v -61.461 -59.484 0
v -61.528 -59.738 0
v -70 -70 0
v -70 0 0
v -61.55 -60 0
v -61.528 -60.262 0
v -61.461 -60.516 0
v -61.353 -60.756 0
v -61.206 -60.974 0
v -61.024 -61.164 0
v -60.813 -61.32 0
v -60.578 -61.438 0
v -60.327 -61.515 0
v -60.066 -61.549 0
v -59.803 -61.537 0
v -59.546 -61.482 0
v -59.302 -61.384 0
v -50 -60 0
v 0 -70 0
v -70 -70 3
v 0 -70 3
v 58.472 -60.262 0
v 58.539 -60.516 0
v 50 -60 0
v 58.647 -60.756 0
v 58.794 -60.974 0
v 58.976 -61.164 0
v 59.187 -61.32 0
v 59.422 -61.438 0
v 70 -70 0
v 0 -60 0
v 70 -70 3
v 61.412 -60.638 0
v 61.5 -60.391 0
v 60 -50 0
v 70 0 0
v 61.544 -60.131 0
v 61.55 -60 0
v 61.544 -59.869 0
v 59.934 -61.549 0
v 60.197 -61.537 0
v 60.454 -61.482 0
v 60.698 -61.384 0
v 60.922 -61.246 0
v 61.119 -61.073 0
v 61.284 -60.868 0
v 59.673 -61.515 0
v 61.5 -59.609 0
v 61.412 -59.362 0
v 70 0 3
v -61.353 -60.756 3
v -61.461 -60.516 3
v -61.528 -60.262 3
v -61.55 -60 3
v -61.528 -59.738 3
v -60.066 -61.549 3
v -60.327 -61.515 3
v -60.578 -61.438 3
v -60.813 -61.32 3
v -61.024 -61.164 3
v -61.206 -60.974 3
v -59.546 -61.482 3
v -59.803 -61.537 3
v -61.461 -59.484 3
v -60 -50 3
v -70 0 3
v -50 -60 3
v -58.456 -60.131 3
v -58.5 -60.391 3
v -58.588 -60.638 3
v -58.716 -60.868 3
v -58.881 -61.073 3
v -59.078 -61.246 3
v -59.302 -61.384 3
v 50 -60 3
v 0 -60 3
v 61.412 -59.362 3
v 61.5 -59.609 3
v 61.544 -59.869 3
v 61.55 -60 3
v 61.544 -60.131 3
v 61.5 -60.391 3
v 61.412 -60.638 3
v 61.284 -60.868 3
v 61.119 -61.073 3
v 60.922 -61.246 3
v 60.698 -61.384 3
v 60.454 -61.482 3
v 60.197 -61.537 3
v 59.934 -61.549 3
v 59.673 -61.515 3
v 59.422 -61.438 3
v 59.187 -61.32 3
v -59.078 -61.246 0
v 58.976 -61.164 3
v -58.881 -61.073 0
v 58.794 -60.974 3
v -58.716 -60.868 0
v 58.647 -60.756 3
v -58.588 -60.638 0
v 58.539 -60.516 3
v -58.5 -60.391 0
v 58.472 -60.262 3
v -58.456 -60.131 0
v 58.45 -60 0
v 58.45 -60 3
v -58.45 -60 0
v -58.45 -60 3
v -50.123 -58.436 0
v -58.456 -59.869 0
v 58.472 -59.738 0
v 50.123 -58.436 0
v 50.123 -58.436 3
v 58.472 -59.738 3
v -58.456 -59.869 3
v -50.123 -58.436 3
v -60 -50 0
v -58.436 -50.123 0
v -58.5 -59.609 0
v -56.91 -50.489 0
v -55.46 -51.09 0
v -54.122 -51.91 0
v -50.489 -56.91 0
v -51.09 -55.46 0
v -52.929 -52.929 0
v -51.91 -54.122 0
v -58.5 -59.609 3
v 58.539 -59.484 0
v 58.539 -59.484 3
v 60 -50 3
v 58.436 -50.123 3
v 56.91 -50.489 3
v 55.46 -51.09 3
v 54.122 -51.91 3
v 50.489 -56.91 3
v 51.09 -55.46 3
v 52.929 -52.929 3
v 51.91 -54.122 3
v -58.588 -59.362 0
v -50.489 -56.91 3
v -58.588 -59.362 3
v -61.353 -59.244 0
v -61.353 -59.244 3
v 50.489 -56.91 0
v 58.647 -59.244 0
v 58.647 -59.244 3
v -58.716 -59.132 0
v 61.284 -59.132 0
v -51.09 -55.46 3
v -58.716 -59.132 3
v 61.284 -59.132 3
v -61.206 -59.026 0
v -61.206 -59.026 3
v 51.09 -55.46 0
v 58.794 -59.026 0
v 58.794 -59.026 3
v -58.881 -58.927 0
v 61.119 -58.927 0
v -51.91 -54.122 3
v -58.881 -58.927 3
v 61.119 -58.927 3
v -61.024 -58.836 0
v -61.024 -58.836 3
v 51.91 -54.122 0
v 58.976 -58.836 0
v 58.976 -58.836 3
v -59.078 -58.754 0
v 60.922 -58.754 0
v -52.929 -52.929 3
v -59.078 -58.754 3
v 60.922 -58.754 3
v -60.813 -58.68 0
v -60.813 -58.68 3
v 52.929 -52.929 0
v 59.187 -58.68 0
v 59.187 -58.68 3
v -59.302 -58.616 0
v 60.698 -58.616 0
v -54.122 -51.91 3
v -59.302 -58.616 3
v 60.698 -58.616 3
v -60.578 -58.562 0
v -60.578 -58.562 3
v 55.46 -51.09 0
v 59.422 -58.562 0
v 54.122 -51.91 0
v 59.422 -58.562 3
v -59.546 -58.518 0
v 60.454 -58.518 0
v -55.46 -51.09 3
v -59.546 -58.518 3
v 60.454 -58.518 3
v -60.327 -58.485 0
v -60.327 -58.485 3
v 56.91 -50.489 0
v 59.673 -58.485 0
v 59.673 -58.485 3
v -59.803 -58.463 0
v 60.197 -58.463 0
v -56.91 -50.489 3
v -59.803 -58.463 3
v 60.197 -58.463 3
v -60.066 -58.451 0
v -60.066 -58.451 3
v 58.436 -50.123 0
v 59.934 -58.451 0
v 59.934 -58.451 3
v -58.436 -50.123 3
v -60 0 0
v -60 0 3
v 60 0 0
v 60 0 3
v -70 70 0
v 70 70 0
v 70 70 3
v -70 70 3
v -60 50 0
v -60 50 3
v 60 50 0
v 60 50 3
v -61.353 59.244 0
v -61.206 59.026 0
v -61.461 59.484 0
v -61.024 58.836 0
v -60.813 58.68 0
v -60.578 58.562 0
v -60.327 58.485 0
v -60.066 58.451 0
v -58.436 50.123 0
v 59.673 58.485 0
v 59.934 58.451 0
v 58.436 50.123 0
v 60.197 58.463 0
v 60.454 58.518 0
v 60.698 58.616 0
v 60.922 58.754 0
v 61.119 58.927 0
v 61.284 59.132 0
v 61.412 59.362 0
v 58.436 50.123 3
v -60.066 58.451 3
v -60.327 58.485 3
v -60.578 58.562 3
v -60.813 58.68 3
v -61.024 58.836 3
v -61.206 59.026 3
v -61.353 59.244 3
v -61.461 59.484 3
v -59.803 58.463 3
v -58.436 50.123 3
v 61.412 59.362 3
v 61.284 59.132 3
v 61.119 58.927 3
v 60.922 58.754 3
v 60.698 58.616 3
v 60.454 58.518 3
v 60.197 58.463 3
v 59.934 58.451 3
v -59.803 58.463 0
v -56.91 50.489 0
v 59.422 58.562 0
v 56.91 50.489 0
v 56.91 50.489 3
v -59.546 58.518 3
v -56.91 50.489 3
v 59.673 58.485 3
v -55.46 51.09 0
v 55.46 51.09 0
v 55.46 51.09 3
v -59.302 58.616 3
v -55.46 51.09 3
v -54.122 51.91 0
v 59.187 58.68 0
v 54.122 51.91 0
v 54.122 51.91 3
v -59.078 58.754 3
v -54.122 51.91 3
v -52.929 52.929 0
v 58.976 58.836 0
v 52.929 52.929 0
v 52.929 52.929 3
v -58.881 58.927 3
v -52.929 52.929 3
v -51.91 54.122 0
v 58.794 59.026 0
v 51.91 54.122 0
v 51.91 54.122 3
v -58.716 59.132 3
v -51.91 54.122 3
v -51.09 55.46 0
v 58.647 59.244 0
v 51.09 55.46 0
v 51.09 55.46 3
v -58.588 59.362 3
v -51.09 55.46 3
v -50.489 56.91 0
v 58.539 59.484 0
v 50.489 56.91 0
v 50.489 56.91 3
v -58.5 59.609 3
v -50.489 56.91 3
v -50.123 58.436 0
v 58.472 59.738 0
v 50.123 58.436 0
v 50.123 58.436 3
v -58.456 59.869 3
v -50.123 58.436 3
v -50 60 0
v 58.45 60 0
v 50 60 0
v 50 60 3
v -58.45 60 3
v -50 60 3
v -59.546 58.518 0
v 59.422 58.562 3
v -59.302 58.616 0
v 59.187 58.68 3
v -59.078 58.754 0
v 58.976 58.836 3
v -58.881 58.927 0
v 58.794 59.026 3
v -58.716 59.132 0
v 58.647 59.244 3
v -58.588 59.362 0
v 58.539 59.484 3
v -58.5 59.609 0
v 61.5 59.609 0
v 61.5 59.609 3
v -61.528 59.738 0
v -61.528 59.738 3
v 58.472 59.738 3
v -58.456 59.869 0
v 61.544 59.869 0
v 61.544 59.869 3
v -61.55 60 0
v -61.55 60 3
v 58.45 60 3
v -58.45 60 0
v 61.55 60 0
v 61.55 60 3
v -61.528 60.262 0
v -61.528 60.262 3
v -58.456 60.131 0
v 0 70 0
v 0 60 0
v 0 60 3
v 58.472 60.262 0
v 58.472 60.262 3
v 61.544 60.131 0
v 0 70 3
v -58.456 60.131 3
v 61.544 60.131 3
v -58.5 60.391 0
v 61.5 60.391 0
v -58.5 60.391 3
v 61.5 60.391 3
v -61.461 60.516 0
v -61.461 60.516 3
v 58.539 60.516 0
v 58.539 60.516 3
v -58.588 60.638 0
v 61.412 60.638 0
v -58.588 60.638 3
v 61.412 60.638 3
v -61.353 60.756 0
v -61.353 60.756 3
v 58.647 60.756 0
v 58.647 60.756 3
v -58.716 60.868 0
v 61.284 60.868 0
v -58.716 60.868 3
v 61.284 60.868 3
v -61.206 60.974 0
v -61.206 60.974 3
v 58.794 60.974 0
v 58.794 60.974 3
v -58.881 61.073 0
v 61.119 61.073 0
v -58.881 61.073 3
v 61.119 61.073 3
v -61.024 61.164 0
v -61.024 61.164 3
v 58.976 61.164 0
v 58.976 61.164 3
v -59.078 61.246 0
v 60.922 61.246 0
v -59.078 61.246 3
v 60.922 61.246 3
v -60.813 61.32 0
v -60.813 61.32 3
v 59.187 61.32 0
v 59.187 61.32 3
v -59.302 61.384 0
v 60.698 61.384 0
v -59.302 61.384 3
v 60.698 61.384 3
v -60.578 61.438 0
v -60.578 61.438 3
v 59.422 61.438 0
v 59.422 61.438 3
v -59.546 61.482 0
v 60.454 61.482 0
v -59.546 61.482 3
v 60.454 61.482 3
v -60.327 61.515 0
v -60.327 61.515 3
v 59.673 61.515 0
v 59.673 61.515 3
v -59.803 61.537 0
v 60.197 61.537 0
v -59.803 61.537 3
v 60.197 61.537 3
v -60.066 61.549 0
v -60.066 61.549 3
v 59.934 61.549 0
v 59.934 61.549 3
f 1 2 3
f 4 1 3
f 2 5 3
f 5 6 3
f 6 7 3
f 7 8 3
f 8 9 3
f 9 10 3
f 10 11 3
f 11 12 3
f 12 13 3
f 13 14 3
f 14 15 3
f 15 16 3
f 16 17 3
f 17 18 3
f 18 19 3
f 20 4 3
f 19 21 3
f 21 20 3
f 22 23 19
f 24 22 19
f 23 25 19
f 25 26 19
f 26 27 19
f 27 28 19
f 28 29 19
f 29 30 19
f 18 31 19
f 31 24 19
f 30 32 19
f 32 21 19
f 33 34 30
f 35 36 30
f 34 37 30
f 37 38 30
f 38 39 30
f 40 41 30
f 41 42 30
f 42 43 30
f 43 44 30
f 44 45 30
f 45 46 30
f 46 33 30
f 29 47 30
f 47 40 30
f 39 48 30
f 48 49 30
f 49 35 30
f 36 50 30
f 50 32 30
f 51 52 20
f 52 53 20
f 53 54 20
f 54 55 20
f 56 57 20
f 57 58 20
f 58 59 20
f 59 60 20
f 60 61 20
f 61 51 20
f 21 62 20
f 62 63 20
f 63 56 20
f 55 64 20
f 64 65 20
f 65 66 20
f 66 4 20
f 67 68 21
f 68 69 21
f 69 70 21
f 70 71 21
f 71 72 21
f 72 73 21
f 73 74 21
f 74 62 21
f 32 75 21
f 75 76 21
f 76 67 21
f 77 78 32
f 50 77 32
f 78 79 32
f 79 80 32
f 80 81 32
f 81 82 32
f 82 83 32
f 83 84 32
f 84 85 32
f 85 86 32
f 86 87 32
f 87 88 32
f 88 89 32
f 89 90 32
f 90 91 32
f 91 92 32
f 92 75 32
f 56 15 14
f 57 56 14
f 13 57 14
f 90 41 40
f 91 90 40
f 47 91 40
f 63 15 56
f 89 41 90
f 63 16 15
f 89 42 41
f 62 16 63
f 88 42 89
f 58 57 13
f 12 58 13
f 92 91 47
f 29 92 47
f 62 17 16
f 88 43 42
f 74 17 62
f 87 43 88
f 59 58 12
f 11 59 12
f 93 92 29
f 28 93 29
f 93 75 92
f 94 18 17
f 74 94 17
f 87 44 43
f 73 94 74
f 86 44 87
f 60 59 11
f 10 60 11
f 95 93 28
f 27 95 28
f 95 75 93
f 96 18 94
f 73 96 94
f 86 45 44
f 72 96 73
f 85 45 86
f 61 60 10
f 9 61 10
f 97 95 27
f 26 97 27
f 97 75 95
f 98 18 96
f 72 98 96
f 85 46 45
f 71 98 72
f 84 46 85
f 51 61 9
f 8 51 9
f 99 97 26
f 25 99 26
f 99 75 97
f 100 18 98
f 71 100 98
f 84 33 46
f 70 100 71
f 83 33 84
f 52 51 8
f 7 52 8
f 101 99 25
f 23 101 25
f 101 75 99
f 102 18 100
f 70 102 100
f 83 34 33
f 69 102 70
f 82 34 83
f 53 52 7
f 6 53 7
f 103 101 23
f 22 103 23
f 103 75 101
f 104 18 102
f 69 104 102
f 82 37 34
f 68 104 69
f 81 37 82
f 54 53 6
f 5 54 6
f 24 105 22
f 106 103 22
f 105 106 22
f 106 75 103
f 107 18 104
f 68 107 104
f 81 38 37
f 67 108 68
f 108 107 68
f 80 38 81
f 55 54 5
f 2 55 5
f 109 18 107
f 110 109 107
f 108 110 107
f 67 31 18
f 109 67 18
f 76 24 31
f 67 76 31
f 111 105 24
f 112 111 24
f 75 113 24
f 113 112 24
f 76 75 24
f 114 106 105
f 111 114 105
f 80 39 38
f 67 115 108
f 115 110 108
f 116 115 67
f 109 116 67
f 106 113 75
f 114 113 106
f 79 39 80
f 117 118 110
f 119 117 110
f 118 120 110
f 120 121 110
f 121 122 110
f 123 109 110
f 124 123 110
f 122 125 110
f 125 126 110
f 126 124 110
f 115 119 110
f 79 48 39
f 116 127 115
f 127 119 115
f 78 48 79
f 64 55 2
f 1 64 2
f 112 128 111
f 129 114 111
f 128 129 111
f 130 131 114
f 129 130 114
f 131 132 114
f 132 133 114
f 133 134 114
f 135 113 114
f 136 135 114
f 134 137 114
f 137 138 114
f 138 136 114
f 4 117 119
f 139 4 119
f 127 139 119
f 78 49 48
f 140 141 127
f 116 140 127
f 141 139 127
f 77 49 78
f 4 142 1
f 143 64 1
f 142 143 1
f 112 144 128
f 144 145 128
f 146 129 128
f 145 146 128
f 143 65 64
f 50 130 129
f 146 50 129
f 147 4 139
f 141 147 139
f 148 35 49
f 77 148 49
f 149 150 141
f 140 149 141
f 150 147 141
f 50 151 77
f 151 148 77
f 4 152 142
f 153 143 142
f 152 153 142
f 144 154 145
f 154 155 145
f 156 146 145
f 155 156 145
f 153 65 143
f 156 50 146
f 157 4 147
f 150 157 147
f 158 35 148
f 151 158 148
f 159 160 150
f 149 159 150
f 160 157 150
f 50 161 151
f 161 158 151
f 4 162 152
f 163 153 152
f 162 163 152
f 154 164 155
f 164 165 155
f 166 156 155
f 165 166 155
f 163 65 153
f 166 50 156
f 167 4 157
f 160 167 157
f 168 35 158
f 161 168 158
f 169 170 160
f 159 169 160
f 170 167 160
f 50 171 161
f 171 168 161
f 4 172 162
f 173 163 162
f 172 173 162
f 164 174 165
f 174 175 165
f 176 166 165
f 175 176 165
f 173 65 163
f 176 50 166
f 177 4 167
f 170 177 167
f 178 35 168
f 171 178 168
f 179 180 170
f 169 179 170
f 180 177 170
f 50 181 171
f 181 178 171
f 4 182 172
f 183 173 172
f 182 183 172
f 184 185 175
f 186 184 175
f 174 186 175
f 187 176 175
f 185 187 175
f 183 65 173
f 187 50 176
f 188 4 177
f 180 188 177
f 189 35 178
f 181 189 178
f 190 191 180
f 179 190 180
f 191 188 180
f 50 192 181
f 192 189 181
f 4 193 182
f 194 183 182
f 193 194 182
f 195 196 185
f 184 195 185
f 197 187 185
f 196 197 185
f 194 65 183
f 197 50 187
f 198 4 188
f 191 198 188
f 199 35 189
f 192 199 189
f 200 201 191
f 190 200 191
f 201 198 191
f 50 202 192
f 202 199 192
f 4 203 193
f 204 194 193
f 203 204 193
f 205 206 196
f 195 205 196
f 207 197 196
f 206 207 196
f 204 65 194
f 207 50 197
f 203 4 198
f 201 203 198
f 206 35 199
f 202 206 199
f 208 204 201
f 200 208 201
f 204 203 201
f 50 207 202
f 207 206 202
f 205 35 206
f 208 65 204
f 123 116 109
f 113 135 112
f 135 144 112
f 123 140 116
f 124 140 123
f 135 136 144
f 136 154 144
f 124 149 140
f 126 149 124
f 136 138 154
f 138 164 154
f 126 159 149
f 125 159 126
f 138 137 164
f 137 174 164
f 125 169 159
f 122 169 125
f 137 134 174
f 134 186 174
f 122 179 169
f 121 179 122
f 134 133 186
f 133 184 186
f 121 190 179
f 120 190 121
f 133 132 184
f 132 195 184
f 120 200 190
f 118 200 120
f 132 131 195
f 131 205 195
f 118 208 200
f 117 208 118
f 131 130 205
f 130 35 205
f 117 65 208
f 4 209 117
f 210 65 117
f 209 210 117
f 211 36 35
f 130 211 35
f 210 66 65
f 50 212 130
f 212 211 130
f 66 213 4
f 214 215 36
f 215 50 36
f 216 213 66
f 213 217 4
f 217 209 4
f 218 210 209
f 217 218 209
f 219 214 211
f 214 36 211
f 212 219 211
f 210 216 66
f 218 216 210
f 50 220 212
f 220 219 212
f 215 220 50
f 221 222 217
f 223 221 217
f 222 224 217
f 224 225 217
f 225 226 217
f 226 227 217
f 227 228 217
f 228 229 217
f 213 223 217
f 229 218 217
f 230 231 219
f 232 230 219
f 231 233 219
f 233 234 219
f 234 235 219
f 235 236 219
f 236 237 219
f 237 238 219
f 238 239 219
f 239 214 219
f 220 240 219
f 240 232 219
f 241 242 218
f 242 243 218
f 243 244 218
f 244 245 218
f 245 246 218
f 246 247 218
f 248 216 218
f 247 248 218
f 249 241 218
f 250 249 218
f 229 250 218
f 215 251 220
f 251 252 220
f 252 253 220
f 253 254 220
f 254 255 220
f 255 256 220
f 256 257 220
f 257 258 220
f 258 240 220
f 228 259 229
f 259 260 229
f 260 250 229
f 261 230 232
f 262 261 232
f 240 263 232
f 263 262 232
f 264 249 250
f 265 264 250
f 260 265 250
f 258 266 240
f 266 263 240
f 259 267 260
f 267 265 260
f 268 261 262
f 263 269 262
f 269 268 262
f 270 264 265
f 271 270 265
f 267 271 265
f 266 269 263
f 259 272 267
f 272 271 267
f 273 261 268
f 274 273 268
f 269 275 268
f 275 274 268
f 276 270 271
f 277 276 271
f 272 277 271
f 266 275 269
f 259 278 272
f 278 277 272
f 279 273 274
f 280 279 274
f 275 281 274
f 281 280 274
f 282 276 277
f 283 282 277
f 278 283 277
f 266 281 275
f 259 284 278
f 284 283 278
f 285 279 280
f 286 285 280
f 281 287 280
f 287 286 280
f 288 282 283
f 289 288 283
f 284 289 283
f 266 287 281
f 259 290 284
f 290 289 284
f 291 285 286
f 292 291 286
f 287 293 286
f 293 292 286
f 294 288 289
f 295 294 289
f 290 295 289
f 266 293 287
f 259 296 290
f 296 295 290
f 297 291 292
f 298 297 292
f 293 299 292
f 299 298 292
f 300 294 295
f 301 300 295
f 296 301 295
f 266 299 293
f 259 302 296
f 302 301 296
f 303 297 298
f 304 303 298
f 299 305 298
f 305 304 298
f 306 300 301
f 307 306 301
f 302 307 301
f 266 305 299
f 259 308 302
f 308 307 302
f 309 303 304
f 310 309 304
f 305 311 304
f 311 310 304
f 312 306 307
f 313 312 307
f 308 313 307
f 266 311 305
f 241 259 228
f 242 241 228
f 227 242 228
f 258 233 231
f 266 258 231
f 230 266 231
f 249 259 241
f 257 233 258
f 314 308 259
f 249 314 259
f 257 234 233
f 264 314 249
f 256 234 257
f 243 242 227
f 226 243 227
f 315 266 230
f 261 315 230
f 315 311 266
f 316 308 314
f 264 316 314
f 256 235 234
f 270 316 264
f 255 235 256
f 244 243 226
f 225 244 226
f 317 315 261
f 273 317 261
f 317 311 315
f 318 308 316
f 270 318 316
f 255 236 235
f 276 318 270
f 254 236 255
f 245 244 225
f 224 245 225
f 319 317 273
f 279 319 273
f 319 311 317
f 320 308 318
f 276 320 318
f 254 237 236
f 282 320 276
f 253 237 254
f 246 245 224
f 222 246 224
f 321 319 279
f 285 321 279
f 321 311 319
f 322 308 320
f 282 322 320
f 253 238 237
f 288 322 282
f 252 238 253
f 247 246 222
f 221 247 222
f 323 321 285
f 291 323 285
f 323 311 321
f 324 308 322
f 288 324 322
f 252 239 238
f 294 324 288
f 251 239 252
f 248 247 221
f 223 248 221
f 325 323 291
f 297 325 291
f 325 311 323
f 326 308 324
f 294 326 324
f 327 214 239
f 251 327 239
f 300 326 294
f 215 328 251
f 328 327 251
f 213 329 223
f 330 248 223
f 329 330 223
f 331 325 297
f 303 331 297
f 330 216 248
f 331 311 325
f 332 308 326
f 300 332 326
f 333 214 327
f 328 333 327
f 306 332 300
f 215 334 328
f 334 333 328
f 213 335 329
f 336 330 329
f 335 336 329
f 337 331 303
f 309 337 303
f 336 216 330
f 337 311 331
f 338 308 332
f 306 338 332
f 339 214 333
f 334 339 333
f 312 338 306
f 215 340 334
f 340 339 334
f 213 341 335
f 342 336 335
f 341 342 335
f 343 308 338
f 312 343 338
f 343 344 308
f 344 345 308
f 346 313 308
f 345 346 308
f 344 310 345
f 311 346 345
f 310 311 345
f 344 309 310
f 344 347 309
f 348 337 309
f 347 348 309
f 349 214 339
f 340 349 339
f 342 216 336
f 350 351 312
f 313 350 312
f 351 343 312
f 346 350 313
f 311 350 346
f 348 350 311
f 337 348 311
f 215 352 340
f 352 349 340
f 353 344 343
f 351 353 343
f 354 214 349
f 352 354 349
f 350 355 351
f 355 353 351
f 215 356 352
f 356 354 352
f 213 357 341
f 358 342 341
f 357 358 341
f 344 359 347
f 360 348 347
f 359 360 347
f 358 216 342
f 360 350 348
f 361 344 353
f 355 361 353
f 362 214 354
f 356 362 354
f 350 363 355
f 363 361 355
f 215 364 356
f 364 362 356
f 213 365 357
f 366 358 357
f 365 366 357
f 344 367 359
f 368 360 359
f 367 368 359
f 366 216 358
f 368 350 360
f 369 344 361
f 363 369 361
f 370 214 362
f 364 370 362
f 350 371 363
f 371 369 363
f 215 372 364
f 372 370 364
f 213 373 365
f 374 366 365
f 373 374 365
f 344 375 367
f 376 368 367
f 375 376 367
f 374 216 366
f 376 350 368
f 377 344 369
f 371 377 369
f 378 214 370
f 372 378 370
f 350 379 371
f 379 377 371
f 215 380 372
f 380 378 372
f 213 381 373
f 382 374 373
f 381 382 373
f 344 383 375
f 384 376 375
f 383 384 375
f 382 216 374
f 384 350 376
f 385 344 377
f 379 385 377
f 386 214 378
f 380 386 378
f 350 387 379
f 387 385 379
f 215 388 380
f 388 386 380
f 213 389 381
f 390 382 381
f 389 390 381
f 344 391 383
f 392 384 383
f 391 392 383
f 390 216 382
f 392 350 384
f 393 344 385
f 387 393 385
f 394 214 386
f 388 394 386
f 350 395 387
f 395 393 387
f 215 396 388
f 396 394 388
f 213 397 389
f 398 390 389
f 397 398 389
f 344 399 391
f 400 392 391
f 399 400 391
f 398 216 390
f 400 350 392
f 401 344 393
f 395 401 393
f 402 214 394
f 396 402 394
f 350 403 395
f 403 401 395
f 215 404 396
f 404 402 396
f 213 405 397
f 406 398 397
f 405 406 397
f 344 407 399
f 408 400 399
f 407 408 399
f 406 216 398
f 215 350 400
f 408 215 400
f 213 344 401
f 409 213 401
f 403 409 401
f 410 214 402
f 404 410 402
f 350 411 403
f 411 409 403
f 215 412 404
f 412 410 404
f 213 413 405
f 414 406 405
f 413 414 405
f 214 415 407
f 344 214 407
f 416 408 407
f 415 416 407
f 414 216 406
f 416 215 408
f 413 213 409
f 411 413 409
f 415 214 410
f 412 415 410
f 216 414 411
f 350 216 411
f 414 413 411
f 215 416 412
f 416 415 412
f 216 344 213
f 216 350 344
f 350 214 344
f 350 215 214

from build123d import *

# Parameters (mm, degrees)
SKETCH_1_W          = 140
SKETCH_1_H          = 140
SKETCH_1_R          = 1.55
EXTRUDE_1_DEPTH     = 3
CUT_EXTRUDE_1_DEPTH = 100.040395799


with BuildPart() as part:
    # 草圖1 → 填料-伸長1 (new body)
    with BuildSketch(Plane.XY):
        Rectangle(SKETCH_1_W, SKETCH_1_H)
        with Locations((-60, 60)):
            Circle(SKETCH_1_R, mode=Mode.SUBTRACT)
        with Locations((60, 60)):
            Circle(SKETCH_1_R, mode=Mode.SUBTRACT)
        with Locations((60, -60)):
            Circle(SKETCH_1_R, mode=Mode.SUBTRACT)
        with Locations((-60, -60)):
            Circle(SKETCH_1_R, mode=Mode.SUBTRACT)
    extrude(amount=EXTRUDE_1_DEPTH)

    # 草圖2 → 除料-伸長1 (cut, through all)
    with BuildSketch(Plane.XY.offset(3)):
        with BuildLine():
            Line((-50, -60), (50, -60))
            ThreePointArc((50, -60), (52.928932188, -52.928932188), (60, -50))
            Line((60, -50), (60, 50))
            ThreePointArc((60, 50), (52.928932188, 52.928932188), (50, 60))
            Line((50, 60), (-50, 60))
            ThreePointArc((-50, 60), (-52.928932188, 52.928932188), (-60, 50))
            Line((-60, 50), (-60, -50))
            ThreePointArc((-60, -50), (-52.928932188, -52.928932188), (-50, -60))
        make_face()
    extrude(amount=-CUT_EXTRUDE_1_DEPTH, mode=Mode.SUBTRACT)


solid = part.part
